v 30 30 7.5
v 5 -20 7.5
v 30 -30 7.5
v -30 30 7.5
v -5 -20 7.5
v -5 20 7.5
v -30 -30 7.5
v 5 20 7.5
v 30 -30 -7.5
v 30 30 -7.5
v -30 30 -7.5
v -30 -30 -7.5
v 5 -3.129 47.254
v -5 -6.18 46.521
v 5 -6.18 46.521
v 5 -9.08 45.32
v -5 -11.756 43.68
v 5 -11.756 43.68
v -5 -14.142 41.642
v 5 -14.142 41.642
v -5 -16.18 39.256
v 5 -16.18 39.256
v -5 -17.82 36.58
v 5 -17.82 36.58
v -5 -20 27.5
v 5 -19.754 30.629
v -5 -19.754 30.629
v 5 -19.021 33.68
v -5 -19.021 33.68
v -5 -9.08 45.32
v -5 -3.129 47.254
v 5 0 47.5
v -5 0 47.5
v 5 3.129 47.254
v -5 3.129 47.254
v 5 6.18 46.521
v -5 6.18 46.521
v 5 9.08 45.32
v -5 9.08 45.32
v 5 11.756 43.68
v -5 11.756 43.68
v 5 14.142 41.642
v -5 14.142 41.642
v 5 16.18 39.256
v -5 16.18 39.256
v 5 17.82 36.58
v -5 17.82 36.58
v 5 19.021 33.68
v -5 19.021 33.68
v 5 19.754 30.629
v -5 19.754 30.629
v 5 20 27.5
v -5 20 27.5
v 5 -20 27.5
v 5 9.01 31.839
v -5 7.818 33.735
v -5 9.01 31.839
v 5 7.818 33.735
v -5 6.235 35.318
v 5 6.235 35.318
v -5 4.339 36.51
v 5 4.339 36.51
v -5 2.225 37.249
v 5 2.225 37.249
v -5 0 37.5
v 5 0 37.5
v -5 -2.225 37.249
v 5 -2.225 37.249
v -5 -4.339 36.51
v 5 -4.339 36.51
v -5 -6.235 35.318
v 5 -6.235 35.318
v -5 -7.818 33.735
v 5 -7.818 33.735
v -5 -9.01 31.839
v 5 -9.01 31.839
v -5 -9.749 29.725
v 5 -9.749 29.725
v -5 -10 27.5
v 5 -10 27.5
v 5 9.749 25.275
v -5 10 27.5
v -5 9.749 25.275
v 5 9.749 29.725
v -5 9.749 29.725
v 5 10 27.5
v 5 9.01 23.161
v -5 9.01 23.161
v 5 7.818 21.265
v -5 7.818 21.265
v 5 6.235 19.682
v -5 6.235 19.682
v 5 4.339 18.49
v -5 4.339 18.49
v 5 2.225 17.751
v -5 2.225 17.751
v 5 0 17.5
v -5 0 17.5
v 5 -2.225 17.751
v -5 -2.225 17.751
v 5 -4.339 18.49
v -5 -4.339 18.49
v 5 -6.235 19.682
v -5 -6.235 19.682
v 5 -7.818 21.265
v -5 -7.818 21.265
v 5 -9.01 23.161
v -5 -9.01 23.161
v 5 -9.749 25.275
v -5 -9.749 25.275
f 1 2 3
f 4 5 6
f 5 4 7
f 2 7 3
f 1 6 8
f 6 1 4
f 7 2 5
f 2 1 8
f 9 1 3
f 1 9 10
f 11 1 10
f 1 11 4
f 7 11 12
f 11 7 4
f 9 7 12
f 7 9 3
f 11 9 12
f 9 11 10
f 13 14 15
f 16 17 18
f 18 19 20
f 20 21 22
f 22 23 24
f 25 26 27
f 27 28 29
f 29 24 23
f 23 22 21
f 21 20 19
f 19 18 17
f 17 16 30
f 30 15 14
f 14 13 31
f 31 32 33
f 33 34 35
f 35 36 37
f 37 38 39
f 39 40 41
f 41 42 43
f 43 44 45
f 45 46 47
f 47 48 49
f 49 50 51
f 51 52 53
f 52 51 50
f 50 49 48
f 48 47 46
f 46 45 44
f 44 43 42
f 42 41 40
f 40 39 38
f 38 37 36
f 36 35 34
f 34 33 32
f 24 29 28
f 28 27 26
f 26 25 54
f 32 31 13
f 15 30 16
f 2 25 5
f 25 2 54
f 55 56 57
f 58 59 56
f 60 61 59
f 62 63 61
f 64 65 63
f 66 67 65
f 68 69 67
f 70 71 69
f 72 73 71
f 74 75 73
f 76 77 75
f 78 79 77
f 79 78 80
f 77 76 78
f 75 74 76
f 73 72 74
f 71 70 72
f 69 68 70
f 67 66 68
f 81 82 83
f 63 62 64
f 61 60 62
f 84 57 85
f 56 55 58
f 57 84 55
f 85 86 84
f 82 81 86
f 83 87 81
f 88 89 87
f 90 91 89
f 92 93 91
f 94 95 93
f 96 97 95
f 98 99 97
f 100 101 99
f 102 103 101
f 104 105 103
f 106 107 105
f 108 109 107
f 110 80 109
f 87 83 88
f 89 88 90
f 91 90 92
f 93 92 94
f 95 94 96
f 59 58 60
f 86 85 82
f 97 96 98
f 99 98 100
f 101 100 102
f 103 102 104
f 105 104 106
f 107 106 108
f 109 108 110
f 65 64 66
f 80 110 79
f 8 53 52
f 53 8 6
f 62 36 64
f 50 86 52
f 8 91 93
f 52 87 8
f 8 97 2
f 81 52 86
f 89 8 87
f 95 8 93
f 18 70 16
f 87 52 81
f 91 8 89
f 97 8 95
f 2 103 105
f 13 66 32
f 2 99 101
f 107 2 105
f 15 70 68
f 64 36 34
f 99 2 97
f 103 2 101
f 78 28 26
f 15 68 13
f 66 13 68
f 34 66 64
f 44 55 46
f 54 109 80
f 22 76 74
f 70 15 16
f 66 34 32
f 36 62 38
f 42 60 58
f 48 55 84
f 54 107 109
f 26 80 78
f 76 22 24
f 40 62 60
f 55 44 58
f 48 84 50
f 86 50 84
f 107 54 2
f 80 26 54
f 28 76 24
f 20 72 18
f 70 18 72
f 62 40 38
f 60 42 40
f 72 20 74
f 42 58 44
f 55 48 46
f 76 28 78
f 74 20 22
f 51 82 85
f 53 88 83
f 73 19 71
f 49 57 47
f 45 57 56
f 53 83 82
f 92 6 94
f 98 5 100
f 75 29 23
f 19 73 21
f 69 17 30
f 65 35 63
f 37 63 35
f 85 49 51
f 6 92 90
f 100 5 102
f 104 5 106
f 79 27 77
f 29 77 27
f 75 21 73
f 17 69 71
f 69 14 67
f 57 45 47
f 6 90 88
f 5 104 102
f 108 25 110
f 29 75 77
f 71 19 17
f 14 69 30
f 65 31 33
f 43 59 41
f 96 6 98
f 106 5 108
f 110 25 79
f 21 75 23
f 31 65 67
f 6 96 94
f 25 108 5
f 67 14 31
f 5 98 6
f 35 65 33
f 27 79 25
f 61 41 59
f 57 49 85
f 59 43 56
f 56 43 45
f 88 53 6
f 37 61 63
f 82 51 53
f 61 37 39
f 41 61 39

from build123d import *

# Parameters (mm, degrees)
SKETCH1_W           = 60
SKETCH1_H           = 60
BOSS_EXTRUDE1_DEPTH = 7.5
SKETCH3_R           = 10
BOSS_EXTRUDE2_DEPTH = 5


with BuildPart() as part:
    # Sketch1 → Boss-Extrude1 (new body, symmetric)
    with BuildSketch(Plane.XY):
        Rectangle(SKETCH1_W, SKETCH1_H)
    extrude(amount=BOSS_EXTRUDE1_DEPTH, both=True)

    # Sketch3 → Boss-Extrude2 (add, symmetric)
    with BuildSketch(Plane(origin=(0, 0, 0), x_dir=(0, 0, -1), z_dir=(1, 0, 0))):
        with BuildLine():
            Line((-7.5, 20), (-27.5, 20))
            ThreePointArc((-27.5, 20), (-47.5, 0), (-27.5, -20))
            Line((-27.5, -20), (-7.5, -20))
            Line((-7.5, -20), (-7.5, 20))
        make_face()
        with Locations((-27.5, 0)):
            Circle(SKETCH3_R, mode=Mode.SUBTRACT)
    extrude(amount=BOSS_EXTRUDE2_DEPTH, both=True)


solid = part.part
